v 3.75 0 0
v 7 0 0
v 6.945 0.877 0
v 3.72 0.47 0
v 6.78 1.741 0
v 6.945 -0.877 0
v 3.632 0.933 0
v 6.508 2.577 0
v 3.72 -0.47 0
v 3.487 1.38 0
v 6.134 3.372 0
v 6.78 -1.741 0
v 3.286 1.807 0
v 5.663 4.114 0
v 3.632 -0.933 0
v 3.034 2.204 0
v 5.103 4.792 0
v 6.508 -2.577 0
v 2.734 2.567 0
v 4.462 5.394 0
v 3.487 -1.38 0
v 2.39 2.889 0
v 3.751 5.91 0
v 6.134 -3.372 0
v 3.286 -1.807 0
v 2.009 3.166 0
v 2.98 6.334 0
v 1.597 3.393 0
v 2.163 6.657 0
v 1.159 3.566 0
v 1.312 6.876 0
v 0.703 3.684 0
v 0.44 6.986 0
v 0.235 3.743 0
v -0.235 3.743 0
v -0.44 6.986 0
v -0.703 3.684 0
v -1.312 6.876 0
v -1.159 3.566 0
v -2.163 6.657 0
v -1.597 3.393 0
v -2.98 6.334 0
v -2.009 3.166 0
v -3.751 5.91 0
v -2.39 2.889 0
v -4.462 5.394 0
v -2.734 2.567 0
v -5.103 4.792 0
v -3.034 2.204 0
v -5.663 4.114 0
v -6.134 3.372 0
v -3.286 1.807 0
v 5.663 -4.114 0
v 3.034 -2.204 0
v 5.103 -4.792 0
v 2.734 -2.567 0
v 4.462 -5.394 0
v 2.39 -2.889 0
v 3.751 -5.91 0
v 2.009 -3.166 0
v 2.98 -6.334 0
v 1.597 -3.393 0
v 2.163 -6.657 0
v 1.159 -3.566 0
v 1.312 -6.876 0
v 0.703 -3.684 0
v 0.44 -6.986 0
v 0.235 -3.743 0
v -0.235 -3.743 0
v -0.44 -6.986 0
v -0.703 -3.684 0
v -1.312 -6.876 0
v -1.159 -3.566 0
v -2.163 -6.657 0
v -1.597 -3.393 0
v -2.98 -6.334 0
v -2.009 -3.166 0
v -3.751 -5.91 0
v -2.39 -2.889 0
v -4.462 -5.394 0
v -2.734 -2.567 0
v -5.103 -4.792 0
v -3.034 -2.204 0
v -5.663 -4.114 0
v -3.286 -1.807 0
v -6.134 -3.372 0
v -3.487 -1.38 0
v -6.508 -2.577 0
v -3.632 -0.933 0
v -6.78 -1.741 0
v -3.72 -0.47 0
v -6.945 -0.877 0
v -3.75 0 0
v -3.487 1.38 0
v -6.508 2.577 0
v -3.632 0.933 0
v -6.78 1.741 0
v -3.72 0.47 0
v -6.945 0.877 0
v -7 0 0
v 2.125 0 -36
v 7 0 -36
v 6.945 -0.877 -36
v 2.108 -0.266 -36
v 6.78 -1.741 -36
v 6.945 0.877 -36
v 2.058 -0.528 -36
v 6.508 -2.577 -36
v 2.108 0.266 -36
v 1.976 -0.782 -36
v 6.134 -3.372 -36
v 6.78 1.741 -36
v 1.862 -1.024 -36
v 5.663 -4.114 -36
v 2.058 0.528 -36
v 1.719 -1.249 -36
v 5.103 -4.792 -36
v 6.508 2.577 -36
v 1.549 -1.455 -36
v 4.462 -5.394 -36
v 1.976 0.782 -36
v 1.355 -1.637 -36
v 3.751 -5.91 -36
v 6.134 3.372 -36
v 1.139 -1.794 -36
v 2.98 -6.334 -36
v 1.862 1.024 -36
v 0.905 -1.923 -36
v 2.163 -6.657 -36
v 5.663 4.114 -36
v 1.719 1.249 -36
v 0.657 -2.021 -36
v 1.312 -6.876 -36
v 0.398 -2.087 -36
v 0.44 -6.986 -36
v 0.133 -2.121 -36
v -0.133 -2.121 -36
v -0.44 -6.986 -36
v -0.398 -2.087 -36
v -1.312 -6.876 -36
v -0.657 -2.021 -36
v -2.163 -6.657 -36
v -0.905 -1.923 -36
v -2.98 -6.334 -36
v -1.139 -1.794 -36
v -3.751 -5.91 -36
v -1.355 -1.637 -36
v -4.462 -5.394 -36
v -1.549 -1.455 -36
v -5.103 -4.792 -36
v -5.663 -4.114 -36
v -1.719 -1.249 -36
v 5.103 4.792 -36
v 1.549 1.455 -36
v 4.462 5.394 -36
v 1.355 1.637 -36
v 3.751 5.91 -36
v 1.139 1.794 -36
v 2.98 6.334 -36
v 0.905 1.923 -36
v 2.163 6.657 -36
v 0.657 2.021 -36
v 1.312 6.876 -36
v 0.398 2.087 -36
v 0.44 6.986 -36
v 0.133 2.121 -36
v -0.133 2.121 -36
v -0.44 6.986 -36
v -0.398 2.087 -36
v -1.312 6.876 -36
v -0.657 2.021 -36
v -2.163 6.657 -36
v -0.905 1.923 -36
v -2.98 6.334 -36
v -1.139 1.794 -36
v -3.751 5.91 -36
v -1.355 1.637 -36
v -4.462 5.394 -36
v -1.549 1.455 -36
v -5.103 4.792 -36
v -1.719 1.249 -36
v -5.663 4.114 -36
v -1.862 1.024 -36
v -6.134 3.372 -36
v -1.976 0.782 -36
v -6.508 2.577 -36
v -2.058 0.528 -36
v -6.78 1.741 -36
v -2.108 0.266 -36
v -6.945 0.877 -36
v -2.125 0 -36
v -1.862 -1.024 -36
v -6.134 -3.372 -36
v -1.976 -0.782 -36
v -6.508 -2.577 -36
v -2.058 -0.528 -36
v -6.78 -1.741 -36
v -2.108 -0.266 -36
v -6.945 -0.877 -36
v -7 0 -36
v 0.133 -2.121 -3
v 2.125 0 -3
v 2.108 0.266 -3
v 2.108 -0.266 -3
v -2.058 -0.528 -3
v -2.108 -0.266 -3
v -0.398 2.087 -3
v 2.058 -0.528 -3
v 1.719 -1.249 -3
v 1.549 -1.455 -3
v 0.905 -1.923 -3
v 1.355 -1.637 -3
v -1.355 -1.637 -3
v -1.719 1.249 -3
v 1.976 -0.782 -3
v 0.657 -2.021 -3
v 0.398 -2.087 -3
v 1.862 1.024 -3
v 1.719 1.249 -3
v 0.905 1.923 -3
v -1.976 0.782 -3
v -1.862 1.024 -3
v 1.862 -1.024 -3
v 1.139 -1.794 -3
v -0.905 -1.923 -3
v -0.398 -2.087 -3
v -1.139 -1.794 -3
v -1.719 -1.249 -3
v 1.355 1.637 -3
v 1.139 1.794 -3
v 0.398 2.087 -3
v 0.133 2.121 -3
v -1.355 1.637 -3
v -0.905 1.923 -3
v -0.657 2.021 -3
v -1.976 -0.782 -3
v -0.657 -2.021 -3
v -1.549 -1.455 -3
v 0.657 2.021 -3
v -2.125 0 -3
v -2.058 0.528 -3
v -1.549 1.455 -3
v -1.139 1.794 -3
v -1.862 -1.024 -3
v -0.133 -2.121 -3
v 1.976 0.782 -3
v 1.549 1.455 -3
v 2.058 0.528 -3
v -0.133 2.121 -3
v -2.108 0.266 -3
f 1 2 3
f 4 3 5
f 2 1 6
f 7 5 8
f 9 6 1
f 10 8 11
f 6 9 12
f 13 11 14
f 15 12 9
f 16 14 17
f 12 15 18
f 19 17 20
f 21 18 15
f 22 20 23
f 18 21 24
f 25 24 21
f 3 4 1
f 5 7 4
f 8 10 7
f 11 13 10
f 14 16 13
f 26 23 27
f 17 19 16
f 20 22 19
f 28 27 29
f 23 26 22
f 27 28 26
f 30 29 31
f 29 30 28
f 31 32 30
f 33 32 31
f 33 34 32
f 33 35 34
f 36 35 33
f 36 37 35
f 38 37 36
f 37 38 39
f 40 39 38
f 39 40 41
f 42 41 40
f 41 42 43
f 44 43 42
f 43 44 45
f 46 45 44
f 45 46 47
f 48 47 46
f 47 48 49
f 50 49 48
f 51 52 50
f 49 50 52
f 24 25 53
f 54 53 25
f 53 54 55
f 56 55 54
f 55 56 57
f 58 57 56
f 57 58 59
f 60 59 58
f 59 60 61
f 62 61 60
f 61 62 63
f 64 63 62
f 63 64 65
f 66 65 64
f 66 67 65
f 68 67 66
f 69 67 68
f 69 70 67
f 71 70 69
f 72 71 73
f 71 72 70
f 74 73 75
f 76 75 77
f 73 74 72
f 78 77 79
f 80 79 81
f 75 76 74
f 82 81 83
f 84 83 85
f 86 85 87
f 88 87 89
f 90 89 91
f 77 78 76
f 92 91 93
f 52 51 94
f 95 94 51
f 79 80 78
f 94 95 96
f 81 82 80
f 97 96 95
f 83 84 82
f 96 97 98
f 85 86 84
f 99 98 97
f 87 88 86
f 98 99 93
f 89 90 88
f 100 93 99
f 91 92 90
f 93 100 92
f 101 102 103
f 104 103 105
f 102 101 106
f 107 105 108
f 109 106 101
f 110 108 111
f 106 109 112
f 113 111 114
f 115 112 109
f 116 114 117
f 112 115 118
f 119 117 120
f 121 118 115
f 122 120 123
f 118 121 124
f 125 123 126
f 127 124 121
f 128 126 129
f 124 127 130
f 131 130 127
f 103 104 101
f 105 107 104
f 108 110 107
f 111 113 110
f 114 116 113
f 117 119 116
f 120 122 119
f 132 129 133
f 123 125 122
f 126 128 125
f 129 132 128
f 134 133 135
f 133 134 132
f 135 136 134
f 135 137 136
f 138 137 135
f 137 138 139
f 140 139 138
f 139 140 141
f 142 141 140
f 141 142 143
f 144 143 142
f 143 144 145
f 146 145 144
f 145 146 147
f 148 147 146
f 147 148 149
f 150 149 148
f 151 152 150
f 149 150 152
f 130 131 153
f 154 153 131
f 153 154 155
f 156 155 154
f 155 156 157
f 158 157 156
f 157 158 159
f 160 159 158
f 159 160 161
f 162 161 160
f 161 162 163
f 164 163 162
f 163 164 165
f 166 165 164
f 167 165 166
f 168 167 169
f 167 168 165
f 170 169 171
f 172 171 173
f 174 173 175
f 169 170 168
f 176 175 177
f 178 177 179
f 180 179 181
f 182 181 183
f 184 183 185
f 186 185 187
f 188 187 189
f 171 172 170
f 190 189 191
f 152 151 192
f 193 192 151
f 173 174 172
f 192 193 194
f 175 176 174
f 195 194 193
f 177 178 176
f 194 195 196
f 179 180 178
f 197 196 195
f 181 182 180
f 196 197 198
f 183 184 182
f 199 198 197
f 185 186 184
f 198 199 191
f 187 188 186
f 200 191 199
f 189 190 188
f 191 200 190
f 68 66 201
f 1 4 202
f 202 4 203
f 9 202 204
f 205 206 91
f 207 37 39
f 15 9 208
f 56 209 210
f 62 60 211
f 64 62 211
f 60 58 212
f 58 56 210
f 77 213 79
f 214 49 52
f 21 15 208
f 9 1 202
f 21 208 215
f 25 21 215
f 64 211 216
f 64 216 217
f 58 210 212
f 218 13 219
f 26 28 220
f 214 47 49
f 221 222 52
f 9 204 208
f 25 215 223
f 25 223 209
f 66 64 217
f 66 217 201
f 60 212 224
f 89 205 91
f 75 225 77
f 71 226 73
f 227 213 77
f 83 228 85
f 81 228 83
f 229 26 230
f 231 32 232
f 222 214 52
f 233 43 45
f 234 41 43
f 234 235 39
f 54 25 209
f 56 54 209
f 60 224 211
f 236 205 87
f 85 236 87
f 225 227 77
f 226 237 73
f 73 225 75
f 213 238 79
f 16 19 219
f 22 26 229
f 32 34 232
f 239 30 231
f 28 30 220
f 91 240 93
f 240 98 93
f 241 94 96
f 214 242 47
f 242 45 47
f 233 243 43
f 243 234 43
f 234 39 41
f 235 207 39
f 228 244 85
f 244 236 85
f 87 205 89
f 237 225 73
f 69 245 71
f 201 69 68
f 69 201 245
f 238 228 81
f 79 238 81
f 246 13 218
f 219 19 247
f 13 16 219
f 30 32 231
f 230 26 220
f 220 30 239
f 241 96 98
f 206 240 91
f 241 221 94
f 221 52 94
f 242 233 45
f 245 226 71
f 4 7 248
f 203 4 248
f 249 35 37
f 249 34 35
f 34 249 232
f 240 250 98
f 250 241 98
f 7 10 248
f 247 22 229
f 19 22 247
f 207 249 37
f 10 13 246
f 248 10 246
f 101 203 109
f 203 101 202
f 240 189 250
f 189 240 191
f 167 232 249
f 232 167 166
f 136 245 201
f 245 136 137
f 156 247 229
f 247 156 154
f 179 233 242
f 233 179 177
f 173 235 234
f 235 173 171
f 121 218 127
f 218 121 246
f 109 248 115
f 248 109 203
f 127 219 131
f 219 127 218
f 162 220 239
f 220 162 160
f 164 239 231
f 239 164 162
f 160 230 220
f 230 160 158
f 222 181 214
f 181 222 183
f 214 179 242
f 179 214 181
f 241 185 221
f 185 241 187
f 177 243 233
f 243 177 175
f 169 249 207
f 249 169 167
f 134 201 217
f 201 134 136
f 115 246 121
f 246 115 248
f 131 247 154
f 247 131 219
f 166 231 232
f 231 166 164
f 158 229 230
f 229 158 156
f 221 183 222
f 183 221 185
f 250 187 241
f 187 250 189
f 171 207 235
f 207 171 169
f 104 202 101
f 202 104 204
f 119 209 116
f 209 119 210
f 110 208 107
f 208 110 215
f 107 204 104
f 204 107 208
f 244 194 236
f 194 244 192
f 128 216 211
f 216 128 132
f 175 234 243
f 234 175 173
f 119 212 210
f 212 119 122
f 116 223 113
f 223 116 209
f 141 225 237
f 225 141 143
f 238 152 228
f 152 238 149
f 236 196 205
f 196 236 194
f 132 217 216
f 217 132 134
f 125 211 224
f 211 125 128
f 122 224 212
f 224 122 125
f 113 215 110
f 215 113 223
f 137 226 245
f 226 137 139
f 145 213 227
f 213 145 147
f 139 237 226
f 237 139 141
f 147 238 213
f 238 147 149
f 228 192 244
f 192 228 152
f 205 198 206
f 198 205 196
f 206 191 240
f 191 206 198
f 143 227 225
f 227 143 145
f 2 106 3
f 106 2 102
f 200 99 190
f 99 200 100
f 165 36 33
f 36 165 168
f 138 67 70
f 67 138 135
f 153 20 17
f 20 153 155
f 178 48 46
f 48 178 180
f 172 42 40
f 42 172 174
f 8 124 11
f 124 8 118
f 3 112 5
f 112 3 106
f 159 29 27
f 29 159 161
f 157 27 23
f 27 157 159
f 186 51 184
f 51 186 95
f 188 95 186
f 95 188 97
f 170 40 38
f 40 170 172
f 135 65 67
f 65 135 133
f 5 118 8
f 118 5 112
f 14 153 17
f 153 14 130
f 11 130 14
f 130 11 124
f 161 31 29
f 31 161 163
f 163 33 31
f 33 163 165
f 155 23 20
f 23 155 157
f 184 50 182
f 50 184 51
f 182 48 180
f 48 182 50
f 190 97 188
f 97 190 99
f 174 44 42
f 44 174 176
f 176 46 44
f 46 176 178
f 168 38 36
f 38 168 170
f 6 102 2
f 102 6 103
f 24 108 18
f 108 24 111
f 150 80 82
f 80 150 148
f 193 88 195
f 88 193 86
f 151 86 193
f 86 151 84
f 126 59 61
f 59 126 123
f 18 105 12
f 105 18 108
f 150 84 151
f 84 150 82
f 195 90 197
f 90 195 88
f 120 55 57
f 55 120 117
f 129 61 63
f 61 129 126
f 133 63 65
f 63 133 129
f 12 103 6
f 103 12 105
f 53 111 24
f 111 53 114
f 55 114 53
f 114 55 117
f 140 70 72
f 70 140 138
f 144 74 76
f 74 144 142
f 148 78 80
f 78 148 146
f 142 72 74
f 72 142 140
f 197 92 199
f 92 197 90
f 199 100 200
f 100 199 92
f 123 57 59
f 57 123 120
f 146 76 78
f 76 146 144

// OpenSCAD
$fn = 50;


difference() {
	union() {
		translate(v = [0, 0, -36.0000000000]) {
			cylinder(h = 36, r = 7.0000000000);
		}
		cylinder(h = 0, r = 16.0000000000);
	}
	union() {
		translate(v = [0, 0, 0]) {
			rotate(a = [0, 0, 0]) {
				difference() {
					union() {
						#translate(v = [0, 0, -36.0000000000]) {
							cylinder(h = 36, r = 2.0000000000);
						}
						#translate(v = [0, 0, -3]) {
							cylinder(h = 3, r1 = 2.1250000000, r2 = 3.7500000000);
						}
						#translate(v = [0, 0, -36.0000000000]) {
							cylinder(h = 36, r = 2.1250000000);
						}
						#translate(v = [0, 0, -36.0000000000]) {
							cylinder(h = 36, r = 2.0000000000);
						}
					}
					union();
				}
			}
		}
	}
}
